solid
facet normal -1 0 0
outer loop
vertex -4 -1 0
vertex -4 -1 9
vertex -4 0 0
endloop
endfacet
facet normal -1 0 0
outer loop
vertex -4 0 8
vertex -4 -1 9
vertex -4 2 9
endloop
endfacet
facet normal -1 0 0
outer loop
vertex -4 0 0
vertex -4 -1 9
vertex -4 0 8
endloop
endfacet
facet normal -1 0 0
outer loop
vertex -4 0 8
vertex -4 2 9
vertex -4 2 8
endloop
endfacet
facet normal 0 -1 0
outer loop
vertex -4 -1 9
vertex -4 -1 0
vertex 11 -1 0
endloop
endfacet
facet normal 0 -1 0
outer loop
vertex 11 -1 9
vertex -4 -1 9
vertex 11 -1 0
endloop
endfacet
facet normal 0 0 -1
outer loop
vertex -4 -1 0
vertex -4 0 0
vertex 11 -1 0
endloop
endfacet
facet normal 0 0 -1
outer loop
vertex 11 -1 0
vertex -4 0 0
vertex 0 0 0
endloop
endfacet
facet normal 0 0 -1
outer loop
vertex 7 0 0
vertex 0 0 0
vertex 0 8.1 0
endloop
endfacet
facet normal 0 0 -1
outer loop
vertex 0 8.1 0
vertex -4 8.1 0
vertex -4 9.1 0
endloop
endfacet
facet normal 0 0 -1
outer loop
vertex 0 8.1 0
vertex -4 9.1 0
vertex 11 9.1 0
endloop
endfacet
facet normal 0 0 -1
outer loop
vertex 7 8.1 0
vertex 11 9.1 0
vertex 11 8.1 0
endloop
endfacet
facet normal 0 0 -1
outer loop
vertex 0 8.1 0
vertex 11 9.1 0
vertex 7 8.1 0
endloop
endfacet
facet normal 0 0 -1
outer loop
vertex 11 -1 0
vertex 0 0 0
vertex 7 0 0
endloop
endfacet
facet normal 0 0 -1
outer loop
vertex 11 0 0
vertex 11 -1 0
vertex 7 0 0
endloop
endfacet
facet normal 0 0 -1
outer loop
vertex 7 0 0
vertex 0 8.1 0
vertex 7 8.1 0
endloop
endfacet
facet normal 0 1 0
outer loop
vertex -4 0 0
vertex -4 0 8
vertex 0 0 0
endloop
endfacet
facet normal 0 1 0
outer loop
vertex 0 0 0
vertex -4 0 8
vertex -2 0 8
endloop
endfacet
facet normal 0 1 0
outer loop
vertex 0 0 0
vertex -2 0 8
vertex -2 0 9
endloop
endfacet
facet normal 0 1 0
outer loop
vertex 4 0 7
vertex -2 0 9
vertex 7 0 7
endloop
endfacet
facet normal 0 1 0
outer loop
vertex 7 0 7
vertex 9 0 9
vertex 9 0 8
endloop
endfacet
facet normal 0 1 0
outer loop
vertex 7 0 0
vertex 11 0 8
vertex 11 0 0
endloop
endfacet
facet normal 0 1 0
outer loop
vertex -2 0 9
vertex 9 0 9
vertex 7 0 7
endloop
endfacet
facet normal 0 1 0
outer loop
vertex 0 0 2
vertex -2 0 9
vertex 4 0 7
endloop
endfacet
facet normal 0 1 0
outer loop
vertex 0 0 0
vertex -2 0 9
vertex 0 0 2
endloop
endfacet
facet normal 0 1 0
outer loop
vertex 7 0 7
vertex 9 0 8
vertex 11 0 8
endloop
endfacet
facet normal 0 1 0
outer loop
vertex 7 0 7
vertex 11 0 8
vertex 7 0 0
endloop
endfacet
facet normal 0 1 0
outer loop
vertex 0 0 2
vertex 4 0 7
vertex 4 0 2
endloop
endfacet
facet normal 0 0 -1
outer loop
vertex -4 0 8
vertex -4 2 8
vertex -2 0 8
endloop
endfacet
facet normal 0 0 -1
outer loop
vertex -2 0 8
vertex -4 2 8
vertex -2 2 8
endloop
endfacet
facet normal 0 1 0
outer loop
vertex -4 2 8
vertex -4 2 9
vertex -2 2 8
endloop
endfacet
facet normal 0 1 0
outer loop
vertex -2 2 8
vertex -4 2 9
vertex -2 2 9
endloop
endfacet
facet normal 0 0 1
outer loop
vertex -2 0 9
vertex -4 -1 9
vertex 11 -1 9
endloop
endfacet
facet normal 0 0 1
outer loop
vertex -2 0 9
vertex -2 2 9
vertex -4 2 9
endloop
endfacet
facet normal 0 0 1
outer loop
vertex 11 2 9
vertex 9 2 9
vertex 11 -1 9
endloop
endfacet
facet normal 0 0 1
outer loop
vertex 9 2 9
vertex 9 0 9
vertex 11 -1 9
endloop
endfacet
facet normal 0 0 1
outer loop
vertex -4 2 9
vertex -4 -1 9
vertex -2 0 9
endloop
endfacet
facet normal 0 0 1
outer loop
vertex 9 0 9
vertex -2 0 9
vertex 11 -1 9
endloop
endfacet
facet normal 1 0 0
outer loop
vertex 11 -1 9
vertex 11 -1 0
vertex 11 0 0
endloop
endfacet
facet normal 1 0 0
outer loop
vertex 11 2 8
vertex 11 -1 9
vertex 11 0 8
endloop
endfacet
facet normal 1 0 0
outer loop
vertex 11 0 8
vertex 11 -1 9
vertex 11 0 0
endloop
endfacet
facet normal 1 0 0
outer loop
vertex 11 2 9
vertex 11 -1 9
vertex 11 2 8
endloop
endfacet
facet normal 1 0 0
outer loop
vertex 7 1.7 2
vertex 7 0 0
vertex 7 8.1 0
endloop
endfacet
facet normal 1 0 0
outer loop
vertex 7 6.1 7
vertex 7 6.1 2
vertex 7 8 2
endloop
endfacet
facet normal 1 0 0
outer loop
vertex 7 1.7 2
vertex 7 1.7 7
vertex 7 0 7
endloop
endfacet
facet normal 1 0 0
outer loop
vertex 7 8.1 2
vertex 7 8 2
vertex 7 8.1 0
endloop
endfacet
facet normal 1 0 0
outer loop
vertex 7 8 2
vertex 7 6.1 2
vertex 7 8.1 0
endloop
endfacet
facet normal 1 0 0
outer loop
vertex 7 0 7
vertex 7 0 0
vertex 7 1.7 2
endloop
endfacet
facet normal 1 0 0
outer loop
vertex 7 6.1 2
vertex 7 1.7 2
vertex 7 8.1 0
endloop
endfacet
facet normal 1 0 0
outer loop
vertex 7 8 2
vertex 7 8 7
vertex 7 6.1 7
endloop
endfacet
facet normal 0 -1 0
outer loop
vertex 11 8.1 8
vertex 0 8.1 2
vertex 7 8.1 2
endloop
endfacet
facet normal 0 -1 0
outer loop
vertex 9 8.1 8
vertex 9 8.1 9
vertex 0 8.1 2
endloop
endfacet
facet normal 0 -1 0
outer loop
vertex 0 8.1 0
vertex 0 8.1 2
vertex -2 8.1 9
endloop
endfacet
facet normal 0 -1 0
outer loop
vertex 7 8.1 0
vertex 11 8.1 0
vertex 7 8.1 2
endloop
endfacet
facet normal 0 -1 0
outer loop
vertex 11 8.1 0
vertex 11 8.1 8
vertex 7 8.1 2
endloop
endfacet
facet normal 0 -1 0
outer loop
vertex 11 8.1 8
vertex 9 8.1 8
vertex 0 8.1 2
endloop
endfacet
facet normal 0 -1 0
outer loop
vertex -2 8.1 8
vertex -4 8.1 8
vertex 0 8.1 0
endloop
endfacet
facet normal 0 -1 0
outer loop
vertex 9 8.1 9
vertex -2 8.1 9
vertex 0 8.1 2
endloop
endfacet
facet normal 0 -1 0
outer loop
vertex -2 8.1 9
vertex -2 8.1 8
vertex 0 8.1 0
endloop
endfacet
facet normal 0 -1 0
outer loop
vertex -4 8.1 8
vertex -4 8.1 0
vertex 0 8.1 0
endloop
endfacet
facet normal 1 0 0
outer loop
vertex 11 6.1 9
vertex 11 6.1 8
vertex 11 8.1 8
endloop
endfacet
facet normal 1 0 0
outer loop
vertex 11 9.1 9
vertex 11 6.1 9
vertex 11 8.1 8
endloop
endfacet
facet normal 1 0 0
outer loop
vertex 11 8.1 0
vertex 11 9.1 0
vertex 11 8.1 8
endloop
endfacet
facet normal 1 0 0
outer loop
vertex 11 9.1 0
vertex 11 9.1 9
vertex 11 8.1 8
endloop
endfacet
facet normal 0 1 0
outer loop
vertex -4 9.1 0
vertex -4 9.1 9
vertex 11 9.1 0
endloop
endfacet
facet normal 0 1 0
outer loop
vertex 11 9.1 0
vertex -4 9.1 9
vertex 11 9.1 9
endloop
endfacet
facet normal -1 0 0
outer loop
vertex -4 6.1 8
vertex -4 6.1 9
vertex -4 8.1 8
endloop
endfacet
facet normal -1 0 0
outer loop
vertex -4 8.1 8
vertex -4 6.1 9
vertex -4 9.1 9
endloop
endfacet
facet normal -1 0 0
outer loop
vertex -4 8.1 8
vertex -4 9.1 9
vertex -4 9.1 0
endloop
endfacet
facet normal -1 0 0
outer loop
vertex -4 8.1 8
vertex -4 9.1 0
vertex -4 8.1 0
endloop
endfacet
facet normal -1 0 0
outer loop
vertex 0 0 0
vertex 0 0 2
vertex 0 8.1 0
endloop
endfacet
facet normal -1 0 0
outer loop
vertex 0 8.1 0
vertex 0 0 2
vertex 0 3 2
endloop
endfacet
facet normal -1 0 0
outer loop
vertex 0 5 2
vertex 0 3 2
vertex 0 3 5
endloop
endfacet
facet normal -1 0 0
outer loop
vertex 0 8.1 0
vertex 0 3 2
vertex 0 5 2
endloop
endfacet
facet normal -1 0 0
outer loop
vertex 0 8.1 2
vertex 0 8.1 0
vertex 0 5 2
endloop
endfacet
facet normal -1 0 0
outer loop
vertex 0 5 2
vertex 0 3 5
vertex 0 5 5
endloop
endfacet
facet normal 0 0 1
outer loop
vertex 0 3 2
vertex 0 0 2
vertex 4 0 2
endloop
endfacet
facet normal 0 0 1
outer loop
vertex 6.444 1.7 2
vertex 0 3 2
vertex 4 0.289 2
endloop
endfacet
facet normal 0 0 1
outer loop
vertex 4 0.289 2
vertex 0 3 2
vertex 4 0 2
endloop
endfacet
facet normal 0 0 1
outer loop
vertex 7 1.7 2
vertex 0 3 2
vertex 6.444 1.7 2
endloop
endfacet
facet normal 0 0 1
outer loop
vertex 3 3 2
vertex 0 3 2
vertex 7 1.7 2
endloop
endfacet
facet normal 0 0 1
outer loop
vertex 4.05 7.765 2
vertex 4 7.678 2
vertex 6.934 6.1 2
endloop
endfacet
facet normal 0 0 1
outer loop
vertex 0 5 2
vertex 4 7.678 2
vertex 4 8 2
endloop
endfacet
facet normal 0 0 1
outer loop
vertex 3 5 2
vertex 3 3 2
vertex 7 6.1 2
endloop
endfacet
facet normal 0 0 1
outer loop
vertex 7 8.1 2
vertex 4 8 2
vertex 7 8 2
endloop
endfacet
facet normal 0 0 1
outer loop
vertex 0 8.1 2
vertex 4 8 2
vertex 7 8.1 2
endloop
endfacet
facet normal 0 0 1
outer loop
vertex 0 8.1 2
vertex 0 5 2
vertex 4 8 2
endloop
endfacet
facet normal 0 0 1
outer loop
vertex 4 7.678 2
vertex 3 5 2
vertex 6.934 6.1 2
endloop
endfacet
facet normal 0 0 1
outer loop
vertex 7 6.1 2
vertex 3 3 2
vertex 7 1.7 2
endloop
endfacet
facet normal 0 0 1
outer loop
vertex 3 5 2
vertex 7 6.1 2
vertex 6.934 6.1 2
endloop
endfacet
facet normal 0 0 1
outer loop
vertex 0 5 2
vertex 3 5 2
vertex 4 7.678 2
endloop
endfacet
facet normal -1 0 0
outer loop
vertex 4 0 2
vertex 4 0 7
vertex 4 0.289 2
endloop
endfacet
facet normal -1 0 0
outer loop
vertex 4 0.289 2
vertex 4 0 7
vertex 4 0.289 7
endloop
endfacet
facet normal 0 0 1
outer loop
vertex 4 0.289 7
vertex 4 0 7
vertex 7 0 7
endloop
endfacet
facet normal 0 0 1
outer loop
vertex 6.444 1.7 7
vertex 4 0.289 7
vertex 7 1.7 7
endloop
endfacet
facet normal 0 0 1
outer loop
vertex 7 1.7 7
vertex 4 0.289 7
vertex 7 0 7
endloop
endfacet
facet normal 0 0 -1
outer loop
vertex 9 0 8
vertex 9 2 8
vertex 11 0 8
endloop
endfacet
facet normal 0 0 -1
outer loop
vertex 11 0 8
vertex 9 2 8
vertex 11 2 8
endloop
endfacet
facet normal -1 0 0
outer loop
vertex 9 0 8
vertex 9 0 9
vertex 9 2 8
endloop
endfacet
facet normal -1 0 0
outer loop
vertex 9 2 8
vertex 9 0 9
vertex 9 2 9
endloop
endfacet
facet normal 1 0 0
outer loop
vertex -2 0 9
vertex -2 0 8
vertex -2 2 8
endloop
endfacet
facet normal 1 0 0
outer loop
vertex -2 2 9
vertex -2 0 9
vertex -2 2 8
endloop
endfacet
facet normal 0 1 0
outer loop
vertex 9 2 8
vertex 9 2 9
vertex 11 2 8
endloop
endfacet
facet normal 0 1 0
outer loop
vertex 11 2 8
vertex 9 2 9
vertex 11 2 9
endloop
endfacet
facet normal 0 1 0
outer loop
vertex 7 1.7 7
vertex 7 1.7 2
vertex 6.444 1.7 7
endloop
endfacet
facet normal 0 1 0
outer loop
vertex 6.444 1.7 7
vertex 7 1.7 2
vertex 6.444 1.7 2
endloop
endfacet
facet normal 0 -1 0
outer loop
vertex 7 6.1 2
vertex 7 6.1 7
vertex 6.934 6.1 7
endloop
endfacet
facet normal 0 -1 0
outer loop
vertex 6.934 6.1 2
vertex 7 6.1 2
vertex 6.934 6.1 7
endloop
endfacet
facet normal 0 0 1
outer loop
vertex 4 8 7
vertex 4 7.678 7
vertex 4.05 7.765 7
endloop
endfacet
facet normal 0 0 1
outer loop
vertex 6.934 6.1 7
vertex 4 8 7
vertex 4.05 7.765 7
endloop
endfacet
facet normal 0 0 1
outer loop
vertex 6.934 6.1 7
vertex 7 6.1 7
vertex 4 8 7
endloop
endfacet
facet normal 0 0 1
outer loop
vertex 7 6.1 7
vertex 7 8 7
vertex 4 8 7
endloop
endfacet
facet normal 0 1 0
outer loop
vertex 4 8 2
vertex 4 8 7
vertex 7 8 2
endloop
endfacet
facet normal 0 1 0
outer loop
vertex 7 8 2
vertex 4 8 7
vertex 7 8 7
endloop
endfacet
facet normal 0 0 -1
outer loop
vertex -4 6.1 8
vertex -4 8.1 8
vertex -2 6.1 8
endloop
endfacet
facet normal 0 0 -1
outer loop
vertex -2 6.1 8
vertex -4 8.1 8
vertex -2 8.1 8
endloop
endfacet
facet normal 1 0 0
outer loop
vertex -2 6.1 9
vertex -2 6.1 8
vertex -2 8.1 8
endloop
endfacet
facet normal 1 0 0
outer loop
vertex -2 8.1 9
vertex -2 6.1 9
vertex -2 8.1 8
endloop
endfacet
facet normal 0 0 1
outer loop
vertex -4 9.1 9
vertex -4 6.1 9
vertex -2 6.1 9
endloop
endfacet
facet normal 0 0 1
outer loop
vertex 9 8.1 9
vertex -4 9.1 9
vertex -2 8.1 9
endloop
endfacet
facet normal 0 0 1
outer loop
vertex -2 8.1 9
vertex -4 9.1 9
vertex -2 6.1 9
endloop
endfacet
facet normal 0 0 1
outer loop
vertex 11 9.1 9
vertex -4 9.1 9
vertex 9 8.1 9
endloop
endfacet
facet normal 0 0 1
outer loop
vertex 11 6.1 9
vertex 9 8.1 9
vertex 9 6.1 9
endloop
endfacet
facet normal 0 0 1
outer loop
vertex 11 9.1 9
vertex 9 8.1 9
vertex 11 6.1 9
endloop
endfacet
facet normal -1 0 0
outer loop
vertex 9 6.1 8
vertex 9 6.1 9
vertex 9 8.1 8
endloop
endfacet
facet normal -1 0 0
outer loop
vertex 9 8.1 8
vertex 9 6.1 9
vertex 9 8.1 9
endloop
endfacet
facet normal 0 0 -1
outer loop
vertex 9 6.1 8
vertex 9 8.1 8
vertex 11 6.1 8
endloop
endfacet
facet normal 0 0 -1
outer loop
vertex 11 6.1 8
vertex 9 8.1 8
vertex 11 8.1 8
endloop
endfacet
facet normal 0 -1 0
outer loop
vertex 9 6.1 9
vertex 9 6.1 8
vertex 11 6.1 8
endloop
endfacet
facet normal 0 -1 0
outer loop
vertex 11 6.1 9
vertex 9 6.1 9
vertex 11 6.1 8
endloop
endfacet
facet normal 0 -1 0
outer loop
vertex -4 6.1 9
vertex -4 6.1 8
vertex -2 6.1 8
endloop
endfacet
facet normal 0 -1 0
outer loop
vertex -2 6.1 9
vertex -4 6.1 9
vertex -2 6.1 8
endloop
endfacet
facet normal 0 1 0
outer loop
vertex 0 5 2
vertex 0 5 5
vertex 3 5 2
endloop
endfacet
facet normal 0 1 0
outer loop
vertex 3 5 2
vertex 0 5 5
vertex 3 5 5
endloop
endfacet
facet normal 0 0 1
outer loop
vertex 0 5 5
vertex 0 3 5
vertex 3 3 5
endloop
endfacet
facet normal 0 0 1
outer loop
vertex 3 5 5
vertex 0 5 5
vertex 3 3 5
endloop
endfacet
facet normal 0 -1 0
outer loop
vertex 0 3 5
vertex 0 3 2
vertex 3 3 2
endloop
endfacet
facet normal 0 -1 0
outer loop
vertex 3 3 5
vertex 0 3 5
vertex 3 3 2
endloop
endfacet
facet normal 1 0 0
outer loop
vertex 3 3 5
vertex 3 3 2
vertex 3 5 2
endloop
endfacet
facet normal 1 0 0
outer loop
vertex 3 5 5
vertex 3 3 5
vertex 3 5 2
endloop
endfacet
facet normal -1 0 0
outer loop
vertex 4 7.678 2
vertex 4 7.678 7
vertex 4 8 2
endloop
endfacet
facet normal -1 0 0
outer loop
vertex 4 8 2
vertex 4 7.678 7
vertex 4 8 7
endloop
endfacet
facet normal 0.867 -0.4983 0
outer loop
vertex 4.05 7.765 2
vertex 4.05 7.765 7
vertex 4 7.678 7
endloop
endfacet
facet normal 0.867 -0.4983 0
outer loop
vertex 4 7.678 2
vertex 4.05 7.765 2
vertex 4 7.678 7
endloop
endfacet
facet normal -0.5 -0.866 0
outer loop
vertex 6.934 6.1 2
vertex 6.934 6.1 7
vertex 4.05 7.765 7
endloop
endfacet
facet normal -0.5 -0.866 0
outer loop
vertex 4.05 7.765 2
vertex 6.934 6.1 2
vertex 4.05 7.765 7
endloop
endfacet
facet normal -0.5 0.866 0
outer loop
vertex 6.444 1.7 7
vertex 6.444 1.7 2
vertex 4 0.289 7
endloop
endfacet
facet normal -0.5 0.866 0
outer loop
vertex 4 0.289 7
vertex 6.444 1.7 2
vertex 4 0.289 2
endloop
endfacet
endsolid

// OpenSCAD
cube(size=[7,8.1,2]);


//lock
difference(){
	translate([4,0,2]) cube(size=[3,3,5]);

	translate([3.5,0,2]) rotate([0,0,30]) cube(size=[4,2.4,6]);
	translate([5,1.7,2]) cube(size=[3,4.4,6]);
}

difference(){
	translate([4,5,2]) cube(size=[3,3,5]);

	translate([2.8,5.6,2]) rotate([0,0,-30]) cube(size=[4,2.5,6]);
	translate([5,1.7,2]) cube(size=[3,4.4,6]);
}



//open
translate([0,3.0,0]) cube(size=[3,2,5]);


//walls
translate([-4,-1,0]) cube(size=[15,1,9]);
	translate([-4,0,8]) cube(size=[2,2,1]);
	translate([9,0,8]) cube(size=[2,2,1]);

translate([-4,8.1,0]) cube(size=[15,1,9]);
	translate([-4,6.1,8]) cube(size=[2,2,1]);
	translate([9,6.1,8]) cube(size=[2,2,1]);

/*
after printing 1.1:
	-make z of tabs thicker
	-make x of locks thicker (like open)
	-make opening of Lock narrower (so it squeezes more)
*/

/*
4.40
3.3
*/
